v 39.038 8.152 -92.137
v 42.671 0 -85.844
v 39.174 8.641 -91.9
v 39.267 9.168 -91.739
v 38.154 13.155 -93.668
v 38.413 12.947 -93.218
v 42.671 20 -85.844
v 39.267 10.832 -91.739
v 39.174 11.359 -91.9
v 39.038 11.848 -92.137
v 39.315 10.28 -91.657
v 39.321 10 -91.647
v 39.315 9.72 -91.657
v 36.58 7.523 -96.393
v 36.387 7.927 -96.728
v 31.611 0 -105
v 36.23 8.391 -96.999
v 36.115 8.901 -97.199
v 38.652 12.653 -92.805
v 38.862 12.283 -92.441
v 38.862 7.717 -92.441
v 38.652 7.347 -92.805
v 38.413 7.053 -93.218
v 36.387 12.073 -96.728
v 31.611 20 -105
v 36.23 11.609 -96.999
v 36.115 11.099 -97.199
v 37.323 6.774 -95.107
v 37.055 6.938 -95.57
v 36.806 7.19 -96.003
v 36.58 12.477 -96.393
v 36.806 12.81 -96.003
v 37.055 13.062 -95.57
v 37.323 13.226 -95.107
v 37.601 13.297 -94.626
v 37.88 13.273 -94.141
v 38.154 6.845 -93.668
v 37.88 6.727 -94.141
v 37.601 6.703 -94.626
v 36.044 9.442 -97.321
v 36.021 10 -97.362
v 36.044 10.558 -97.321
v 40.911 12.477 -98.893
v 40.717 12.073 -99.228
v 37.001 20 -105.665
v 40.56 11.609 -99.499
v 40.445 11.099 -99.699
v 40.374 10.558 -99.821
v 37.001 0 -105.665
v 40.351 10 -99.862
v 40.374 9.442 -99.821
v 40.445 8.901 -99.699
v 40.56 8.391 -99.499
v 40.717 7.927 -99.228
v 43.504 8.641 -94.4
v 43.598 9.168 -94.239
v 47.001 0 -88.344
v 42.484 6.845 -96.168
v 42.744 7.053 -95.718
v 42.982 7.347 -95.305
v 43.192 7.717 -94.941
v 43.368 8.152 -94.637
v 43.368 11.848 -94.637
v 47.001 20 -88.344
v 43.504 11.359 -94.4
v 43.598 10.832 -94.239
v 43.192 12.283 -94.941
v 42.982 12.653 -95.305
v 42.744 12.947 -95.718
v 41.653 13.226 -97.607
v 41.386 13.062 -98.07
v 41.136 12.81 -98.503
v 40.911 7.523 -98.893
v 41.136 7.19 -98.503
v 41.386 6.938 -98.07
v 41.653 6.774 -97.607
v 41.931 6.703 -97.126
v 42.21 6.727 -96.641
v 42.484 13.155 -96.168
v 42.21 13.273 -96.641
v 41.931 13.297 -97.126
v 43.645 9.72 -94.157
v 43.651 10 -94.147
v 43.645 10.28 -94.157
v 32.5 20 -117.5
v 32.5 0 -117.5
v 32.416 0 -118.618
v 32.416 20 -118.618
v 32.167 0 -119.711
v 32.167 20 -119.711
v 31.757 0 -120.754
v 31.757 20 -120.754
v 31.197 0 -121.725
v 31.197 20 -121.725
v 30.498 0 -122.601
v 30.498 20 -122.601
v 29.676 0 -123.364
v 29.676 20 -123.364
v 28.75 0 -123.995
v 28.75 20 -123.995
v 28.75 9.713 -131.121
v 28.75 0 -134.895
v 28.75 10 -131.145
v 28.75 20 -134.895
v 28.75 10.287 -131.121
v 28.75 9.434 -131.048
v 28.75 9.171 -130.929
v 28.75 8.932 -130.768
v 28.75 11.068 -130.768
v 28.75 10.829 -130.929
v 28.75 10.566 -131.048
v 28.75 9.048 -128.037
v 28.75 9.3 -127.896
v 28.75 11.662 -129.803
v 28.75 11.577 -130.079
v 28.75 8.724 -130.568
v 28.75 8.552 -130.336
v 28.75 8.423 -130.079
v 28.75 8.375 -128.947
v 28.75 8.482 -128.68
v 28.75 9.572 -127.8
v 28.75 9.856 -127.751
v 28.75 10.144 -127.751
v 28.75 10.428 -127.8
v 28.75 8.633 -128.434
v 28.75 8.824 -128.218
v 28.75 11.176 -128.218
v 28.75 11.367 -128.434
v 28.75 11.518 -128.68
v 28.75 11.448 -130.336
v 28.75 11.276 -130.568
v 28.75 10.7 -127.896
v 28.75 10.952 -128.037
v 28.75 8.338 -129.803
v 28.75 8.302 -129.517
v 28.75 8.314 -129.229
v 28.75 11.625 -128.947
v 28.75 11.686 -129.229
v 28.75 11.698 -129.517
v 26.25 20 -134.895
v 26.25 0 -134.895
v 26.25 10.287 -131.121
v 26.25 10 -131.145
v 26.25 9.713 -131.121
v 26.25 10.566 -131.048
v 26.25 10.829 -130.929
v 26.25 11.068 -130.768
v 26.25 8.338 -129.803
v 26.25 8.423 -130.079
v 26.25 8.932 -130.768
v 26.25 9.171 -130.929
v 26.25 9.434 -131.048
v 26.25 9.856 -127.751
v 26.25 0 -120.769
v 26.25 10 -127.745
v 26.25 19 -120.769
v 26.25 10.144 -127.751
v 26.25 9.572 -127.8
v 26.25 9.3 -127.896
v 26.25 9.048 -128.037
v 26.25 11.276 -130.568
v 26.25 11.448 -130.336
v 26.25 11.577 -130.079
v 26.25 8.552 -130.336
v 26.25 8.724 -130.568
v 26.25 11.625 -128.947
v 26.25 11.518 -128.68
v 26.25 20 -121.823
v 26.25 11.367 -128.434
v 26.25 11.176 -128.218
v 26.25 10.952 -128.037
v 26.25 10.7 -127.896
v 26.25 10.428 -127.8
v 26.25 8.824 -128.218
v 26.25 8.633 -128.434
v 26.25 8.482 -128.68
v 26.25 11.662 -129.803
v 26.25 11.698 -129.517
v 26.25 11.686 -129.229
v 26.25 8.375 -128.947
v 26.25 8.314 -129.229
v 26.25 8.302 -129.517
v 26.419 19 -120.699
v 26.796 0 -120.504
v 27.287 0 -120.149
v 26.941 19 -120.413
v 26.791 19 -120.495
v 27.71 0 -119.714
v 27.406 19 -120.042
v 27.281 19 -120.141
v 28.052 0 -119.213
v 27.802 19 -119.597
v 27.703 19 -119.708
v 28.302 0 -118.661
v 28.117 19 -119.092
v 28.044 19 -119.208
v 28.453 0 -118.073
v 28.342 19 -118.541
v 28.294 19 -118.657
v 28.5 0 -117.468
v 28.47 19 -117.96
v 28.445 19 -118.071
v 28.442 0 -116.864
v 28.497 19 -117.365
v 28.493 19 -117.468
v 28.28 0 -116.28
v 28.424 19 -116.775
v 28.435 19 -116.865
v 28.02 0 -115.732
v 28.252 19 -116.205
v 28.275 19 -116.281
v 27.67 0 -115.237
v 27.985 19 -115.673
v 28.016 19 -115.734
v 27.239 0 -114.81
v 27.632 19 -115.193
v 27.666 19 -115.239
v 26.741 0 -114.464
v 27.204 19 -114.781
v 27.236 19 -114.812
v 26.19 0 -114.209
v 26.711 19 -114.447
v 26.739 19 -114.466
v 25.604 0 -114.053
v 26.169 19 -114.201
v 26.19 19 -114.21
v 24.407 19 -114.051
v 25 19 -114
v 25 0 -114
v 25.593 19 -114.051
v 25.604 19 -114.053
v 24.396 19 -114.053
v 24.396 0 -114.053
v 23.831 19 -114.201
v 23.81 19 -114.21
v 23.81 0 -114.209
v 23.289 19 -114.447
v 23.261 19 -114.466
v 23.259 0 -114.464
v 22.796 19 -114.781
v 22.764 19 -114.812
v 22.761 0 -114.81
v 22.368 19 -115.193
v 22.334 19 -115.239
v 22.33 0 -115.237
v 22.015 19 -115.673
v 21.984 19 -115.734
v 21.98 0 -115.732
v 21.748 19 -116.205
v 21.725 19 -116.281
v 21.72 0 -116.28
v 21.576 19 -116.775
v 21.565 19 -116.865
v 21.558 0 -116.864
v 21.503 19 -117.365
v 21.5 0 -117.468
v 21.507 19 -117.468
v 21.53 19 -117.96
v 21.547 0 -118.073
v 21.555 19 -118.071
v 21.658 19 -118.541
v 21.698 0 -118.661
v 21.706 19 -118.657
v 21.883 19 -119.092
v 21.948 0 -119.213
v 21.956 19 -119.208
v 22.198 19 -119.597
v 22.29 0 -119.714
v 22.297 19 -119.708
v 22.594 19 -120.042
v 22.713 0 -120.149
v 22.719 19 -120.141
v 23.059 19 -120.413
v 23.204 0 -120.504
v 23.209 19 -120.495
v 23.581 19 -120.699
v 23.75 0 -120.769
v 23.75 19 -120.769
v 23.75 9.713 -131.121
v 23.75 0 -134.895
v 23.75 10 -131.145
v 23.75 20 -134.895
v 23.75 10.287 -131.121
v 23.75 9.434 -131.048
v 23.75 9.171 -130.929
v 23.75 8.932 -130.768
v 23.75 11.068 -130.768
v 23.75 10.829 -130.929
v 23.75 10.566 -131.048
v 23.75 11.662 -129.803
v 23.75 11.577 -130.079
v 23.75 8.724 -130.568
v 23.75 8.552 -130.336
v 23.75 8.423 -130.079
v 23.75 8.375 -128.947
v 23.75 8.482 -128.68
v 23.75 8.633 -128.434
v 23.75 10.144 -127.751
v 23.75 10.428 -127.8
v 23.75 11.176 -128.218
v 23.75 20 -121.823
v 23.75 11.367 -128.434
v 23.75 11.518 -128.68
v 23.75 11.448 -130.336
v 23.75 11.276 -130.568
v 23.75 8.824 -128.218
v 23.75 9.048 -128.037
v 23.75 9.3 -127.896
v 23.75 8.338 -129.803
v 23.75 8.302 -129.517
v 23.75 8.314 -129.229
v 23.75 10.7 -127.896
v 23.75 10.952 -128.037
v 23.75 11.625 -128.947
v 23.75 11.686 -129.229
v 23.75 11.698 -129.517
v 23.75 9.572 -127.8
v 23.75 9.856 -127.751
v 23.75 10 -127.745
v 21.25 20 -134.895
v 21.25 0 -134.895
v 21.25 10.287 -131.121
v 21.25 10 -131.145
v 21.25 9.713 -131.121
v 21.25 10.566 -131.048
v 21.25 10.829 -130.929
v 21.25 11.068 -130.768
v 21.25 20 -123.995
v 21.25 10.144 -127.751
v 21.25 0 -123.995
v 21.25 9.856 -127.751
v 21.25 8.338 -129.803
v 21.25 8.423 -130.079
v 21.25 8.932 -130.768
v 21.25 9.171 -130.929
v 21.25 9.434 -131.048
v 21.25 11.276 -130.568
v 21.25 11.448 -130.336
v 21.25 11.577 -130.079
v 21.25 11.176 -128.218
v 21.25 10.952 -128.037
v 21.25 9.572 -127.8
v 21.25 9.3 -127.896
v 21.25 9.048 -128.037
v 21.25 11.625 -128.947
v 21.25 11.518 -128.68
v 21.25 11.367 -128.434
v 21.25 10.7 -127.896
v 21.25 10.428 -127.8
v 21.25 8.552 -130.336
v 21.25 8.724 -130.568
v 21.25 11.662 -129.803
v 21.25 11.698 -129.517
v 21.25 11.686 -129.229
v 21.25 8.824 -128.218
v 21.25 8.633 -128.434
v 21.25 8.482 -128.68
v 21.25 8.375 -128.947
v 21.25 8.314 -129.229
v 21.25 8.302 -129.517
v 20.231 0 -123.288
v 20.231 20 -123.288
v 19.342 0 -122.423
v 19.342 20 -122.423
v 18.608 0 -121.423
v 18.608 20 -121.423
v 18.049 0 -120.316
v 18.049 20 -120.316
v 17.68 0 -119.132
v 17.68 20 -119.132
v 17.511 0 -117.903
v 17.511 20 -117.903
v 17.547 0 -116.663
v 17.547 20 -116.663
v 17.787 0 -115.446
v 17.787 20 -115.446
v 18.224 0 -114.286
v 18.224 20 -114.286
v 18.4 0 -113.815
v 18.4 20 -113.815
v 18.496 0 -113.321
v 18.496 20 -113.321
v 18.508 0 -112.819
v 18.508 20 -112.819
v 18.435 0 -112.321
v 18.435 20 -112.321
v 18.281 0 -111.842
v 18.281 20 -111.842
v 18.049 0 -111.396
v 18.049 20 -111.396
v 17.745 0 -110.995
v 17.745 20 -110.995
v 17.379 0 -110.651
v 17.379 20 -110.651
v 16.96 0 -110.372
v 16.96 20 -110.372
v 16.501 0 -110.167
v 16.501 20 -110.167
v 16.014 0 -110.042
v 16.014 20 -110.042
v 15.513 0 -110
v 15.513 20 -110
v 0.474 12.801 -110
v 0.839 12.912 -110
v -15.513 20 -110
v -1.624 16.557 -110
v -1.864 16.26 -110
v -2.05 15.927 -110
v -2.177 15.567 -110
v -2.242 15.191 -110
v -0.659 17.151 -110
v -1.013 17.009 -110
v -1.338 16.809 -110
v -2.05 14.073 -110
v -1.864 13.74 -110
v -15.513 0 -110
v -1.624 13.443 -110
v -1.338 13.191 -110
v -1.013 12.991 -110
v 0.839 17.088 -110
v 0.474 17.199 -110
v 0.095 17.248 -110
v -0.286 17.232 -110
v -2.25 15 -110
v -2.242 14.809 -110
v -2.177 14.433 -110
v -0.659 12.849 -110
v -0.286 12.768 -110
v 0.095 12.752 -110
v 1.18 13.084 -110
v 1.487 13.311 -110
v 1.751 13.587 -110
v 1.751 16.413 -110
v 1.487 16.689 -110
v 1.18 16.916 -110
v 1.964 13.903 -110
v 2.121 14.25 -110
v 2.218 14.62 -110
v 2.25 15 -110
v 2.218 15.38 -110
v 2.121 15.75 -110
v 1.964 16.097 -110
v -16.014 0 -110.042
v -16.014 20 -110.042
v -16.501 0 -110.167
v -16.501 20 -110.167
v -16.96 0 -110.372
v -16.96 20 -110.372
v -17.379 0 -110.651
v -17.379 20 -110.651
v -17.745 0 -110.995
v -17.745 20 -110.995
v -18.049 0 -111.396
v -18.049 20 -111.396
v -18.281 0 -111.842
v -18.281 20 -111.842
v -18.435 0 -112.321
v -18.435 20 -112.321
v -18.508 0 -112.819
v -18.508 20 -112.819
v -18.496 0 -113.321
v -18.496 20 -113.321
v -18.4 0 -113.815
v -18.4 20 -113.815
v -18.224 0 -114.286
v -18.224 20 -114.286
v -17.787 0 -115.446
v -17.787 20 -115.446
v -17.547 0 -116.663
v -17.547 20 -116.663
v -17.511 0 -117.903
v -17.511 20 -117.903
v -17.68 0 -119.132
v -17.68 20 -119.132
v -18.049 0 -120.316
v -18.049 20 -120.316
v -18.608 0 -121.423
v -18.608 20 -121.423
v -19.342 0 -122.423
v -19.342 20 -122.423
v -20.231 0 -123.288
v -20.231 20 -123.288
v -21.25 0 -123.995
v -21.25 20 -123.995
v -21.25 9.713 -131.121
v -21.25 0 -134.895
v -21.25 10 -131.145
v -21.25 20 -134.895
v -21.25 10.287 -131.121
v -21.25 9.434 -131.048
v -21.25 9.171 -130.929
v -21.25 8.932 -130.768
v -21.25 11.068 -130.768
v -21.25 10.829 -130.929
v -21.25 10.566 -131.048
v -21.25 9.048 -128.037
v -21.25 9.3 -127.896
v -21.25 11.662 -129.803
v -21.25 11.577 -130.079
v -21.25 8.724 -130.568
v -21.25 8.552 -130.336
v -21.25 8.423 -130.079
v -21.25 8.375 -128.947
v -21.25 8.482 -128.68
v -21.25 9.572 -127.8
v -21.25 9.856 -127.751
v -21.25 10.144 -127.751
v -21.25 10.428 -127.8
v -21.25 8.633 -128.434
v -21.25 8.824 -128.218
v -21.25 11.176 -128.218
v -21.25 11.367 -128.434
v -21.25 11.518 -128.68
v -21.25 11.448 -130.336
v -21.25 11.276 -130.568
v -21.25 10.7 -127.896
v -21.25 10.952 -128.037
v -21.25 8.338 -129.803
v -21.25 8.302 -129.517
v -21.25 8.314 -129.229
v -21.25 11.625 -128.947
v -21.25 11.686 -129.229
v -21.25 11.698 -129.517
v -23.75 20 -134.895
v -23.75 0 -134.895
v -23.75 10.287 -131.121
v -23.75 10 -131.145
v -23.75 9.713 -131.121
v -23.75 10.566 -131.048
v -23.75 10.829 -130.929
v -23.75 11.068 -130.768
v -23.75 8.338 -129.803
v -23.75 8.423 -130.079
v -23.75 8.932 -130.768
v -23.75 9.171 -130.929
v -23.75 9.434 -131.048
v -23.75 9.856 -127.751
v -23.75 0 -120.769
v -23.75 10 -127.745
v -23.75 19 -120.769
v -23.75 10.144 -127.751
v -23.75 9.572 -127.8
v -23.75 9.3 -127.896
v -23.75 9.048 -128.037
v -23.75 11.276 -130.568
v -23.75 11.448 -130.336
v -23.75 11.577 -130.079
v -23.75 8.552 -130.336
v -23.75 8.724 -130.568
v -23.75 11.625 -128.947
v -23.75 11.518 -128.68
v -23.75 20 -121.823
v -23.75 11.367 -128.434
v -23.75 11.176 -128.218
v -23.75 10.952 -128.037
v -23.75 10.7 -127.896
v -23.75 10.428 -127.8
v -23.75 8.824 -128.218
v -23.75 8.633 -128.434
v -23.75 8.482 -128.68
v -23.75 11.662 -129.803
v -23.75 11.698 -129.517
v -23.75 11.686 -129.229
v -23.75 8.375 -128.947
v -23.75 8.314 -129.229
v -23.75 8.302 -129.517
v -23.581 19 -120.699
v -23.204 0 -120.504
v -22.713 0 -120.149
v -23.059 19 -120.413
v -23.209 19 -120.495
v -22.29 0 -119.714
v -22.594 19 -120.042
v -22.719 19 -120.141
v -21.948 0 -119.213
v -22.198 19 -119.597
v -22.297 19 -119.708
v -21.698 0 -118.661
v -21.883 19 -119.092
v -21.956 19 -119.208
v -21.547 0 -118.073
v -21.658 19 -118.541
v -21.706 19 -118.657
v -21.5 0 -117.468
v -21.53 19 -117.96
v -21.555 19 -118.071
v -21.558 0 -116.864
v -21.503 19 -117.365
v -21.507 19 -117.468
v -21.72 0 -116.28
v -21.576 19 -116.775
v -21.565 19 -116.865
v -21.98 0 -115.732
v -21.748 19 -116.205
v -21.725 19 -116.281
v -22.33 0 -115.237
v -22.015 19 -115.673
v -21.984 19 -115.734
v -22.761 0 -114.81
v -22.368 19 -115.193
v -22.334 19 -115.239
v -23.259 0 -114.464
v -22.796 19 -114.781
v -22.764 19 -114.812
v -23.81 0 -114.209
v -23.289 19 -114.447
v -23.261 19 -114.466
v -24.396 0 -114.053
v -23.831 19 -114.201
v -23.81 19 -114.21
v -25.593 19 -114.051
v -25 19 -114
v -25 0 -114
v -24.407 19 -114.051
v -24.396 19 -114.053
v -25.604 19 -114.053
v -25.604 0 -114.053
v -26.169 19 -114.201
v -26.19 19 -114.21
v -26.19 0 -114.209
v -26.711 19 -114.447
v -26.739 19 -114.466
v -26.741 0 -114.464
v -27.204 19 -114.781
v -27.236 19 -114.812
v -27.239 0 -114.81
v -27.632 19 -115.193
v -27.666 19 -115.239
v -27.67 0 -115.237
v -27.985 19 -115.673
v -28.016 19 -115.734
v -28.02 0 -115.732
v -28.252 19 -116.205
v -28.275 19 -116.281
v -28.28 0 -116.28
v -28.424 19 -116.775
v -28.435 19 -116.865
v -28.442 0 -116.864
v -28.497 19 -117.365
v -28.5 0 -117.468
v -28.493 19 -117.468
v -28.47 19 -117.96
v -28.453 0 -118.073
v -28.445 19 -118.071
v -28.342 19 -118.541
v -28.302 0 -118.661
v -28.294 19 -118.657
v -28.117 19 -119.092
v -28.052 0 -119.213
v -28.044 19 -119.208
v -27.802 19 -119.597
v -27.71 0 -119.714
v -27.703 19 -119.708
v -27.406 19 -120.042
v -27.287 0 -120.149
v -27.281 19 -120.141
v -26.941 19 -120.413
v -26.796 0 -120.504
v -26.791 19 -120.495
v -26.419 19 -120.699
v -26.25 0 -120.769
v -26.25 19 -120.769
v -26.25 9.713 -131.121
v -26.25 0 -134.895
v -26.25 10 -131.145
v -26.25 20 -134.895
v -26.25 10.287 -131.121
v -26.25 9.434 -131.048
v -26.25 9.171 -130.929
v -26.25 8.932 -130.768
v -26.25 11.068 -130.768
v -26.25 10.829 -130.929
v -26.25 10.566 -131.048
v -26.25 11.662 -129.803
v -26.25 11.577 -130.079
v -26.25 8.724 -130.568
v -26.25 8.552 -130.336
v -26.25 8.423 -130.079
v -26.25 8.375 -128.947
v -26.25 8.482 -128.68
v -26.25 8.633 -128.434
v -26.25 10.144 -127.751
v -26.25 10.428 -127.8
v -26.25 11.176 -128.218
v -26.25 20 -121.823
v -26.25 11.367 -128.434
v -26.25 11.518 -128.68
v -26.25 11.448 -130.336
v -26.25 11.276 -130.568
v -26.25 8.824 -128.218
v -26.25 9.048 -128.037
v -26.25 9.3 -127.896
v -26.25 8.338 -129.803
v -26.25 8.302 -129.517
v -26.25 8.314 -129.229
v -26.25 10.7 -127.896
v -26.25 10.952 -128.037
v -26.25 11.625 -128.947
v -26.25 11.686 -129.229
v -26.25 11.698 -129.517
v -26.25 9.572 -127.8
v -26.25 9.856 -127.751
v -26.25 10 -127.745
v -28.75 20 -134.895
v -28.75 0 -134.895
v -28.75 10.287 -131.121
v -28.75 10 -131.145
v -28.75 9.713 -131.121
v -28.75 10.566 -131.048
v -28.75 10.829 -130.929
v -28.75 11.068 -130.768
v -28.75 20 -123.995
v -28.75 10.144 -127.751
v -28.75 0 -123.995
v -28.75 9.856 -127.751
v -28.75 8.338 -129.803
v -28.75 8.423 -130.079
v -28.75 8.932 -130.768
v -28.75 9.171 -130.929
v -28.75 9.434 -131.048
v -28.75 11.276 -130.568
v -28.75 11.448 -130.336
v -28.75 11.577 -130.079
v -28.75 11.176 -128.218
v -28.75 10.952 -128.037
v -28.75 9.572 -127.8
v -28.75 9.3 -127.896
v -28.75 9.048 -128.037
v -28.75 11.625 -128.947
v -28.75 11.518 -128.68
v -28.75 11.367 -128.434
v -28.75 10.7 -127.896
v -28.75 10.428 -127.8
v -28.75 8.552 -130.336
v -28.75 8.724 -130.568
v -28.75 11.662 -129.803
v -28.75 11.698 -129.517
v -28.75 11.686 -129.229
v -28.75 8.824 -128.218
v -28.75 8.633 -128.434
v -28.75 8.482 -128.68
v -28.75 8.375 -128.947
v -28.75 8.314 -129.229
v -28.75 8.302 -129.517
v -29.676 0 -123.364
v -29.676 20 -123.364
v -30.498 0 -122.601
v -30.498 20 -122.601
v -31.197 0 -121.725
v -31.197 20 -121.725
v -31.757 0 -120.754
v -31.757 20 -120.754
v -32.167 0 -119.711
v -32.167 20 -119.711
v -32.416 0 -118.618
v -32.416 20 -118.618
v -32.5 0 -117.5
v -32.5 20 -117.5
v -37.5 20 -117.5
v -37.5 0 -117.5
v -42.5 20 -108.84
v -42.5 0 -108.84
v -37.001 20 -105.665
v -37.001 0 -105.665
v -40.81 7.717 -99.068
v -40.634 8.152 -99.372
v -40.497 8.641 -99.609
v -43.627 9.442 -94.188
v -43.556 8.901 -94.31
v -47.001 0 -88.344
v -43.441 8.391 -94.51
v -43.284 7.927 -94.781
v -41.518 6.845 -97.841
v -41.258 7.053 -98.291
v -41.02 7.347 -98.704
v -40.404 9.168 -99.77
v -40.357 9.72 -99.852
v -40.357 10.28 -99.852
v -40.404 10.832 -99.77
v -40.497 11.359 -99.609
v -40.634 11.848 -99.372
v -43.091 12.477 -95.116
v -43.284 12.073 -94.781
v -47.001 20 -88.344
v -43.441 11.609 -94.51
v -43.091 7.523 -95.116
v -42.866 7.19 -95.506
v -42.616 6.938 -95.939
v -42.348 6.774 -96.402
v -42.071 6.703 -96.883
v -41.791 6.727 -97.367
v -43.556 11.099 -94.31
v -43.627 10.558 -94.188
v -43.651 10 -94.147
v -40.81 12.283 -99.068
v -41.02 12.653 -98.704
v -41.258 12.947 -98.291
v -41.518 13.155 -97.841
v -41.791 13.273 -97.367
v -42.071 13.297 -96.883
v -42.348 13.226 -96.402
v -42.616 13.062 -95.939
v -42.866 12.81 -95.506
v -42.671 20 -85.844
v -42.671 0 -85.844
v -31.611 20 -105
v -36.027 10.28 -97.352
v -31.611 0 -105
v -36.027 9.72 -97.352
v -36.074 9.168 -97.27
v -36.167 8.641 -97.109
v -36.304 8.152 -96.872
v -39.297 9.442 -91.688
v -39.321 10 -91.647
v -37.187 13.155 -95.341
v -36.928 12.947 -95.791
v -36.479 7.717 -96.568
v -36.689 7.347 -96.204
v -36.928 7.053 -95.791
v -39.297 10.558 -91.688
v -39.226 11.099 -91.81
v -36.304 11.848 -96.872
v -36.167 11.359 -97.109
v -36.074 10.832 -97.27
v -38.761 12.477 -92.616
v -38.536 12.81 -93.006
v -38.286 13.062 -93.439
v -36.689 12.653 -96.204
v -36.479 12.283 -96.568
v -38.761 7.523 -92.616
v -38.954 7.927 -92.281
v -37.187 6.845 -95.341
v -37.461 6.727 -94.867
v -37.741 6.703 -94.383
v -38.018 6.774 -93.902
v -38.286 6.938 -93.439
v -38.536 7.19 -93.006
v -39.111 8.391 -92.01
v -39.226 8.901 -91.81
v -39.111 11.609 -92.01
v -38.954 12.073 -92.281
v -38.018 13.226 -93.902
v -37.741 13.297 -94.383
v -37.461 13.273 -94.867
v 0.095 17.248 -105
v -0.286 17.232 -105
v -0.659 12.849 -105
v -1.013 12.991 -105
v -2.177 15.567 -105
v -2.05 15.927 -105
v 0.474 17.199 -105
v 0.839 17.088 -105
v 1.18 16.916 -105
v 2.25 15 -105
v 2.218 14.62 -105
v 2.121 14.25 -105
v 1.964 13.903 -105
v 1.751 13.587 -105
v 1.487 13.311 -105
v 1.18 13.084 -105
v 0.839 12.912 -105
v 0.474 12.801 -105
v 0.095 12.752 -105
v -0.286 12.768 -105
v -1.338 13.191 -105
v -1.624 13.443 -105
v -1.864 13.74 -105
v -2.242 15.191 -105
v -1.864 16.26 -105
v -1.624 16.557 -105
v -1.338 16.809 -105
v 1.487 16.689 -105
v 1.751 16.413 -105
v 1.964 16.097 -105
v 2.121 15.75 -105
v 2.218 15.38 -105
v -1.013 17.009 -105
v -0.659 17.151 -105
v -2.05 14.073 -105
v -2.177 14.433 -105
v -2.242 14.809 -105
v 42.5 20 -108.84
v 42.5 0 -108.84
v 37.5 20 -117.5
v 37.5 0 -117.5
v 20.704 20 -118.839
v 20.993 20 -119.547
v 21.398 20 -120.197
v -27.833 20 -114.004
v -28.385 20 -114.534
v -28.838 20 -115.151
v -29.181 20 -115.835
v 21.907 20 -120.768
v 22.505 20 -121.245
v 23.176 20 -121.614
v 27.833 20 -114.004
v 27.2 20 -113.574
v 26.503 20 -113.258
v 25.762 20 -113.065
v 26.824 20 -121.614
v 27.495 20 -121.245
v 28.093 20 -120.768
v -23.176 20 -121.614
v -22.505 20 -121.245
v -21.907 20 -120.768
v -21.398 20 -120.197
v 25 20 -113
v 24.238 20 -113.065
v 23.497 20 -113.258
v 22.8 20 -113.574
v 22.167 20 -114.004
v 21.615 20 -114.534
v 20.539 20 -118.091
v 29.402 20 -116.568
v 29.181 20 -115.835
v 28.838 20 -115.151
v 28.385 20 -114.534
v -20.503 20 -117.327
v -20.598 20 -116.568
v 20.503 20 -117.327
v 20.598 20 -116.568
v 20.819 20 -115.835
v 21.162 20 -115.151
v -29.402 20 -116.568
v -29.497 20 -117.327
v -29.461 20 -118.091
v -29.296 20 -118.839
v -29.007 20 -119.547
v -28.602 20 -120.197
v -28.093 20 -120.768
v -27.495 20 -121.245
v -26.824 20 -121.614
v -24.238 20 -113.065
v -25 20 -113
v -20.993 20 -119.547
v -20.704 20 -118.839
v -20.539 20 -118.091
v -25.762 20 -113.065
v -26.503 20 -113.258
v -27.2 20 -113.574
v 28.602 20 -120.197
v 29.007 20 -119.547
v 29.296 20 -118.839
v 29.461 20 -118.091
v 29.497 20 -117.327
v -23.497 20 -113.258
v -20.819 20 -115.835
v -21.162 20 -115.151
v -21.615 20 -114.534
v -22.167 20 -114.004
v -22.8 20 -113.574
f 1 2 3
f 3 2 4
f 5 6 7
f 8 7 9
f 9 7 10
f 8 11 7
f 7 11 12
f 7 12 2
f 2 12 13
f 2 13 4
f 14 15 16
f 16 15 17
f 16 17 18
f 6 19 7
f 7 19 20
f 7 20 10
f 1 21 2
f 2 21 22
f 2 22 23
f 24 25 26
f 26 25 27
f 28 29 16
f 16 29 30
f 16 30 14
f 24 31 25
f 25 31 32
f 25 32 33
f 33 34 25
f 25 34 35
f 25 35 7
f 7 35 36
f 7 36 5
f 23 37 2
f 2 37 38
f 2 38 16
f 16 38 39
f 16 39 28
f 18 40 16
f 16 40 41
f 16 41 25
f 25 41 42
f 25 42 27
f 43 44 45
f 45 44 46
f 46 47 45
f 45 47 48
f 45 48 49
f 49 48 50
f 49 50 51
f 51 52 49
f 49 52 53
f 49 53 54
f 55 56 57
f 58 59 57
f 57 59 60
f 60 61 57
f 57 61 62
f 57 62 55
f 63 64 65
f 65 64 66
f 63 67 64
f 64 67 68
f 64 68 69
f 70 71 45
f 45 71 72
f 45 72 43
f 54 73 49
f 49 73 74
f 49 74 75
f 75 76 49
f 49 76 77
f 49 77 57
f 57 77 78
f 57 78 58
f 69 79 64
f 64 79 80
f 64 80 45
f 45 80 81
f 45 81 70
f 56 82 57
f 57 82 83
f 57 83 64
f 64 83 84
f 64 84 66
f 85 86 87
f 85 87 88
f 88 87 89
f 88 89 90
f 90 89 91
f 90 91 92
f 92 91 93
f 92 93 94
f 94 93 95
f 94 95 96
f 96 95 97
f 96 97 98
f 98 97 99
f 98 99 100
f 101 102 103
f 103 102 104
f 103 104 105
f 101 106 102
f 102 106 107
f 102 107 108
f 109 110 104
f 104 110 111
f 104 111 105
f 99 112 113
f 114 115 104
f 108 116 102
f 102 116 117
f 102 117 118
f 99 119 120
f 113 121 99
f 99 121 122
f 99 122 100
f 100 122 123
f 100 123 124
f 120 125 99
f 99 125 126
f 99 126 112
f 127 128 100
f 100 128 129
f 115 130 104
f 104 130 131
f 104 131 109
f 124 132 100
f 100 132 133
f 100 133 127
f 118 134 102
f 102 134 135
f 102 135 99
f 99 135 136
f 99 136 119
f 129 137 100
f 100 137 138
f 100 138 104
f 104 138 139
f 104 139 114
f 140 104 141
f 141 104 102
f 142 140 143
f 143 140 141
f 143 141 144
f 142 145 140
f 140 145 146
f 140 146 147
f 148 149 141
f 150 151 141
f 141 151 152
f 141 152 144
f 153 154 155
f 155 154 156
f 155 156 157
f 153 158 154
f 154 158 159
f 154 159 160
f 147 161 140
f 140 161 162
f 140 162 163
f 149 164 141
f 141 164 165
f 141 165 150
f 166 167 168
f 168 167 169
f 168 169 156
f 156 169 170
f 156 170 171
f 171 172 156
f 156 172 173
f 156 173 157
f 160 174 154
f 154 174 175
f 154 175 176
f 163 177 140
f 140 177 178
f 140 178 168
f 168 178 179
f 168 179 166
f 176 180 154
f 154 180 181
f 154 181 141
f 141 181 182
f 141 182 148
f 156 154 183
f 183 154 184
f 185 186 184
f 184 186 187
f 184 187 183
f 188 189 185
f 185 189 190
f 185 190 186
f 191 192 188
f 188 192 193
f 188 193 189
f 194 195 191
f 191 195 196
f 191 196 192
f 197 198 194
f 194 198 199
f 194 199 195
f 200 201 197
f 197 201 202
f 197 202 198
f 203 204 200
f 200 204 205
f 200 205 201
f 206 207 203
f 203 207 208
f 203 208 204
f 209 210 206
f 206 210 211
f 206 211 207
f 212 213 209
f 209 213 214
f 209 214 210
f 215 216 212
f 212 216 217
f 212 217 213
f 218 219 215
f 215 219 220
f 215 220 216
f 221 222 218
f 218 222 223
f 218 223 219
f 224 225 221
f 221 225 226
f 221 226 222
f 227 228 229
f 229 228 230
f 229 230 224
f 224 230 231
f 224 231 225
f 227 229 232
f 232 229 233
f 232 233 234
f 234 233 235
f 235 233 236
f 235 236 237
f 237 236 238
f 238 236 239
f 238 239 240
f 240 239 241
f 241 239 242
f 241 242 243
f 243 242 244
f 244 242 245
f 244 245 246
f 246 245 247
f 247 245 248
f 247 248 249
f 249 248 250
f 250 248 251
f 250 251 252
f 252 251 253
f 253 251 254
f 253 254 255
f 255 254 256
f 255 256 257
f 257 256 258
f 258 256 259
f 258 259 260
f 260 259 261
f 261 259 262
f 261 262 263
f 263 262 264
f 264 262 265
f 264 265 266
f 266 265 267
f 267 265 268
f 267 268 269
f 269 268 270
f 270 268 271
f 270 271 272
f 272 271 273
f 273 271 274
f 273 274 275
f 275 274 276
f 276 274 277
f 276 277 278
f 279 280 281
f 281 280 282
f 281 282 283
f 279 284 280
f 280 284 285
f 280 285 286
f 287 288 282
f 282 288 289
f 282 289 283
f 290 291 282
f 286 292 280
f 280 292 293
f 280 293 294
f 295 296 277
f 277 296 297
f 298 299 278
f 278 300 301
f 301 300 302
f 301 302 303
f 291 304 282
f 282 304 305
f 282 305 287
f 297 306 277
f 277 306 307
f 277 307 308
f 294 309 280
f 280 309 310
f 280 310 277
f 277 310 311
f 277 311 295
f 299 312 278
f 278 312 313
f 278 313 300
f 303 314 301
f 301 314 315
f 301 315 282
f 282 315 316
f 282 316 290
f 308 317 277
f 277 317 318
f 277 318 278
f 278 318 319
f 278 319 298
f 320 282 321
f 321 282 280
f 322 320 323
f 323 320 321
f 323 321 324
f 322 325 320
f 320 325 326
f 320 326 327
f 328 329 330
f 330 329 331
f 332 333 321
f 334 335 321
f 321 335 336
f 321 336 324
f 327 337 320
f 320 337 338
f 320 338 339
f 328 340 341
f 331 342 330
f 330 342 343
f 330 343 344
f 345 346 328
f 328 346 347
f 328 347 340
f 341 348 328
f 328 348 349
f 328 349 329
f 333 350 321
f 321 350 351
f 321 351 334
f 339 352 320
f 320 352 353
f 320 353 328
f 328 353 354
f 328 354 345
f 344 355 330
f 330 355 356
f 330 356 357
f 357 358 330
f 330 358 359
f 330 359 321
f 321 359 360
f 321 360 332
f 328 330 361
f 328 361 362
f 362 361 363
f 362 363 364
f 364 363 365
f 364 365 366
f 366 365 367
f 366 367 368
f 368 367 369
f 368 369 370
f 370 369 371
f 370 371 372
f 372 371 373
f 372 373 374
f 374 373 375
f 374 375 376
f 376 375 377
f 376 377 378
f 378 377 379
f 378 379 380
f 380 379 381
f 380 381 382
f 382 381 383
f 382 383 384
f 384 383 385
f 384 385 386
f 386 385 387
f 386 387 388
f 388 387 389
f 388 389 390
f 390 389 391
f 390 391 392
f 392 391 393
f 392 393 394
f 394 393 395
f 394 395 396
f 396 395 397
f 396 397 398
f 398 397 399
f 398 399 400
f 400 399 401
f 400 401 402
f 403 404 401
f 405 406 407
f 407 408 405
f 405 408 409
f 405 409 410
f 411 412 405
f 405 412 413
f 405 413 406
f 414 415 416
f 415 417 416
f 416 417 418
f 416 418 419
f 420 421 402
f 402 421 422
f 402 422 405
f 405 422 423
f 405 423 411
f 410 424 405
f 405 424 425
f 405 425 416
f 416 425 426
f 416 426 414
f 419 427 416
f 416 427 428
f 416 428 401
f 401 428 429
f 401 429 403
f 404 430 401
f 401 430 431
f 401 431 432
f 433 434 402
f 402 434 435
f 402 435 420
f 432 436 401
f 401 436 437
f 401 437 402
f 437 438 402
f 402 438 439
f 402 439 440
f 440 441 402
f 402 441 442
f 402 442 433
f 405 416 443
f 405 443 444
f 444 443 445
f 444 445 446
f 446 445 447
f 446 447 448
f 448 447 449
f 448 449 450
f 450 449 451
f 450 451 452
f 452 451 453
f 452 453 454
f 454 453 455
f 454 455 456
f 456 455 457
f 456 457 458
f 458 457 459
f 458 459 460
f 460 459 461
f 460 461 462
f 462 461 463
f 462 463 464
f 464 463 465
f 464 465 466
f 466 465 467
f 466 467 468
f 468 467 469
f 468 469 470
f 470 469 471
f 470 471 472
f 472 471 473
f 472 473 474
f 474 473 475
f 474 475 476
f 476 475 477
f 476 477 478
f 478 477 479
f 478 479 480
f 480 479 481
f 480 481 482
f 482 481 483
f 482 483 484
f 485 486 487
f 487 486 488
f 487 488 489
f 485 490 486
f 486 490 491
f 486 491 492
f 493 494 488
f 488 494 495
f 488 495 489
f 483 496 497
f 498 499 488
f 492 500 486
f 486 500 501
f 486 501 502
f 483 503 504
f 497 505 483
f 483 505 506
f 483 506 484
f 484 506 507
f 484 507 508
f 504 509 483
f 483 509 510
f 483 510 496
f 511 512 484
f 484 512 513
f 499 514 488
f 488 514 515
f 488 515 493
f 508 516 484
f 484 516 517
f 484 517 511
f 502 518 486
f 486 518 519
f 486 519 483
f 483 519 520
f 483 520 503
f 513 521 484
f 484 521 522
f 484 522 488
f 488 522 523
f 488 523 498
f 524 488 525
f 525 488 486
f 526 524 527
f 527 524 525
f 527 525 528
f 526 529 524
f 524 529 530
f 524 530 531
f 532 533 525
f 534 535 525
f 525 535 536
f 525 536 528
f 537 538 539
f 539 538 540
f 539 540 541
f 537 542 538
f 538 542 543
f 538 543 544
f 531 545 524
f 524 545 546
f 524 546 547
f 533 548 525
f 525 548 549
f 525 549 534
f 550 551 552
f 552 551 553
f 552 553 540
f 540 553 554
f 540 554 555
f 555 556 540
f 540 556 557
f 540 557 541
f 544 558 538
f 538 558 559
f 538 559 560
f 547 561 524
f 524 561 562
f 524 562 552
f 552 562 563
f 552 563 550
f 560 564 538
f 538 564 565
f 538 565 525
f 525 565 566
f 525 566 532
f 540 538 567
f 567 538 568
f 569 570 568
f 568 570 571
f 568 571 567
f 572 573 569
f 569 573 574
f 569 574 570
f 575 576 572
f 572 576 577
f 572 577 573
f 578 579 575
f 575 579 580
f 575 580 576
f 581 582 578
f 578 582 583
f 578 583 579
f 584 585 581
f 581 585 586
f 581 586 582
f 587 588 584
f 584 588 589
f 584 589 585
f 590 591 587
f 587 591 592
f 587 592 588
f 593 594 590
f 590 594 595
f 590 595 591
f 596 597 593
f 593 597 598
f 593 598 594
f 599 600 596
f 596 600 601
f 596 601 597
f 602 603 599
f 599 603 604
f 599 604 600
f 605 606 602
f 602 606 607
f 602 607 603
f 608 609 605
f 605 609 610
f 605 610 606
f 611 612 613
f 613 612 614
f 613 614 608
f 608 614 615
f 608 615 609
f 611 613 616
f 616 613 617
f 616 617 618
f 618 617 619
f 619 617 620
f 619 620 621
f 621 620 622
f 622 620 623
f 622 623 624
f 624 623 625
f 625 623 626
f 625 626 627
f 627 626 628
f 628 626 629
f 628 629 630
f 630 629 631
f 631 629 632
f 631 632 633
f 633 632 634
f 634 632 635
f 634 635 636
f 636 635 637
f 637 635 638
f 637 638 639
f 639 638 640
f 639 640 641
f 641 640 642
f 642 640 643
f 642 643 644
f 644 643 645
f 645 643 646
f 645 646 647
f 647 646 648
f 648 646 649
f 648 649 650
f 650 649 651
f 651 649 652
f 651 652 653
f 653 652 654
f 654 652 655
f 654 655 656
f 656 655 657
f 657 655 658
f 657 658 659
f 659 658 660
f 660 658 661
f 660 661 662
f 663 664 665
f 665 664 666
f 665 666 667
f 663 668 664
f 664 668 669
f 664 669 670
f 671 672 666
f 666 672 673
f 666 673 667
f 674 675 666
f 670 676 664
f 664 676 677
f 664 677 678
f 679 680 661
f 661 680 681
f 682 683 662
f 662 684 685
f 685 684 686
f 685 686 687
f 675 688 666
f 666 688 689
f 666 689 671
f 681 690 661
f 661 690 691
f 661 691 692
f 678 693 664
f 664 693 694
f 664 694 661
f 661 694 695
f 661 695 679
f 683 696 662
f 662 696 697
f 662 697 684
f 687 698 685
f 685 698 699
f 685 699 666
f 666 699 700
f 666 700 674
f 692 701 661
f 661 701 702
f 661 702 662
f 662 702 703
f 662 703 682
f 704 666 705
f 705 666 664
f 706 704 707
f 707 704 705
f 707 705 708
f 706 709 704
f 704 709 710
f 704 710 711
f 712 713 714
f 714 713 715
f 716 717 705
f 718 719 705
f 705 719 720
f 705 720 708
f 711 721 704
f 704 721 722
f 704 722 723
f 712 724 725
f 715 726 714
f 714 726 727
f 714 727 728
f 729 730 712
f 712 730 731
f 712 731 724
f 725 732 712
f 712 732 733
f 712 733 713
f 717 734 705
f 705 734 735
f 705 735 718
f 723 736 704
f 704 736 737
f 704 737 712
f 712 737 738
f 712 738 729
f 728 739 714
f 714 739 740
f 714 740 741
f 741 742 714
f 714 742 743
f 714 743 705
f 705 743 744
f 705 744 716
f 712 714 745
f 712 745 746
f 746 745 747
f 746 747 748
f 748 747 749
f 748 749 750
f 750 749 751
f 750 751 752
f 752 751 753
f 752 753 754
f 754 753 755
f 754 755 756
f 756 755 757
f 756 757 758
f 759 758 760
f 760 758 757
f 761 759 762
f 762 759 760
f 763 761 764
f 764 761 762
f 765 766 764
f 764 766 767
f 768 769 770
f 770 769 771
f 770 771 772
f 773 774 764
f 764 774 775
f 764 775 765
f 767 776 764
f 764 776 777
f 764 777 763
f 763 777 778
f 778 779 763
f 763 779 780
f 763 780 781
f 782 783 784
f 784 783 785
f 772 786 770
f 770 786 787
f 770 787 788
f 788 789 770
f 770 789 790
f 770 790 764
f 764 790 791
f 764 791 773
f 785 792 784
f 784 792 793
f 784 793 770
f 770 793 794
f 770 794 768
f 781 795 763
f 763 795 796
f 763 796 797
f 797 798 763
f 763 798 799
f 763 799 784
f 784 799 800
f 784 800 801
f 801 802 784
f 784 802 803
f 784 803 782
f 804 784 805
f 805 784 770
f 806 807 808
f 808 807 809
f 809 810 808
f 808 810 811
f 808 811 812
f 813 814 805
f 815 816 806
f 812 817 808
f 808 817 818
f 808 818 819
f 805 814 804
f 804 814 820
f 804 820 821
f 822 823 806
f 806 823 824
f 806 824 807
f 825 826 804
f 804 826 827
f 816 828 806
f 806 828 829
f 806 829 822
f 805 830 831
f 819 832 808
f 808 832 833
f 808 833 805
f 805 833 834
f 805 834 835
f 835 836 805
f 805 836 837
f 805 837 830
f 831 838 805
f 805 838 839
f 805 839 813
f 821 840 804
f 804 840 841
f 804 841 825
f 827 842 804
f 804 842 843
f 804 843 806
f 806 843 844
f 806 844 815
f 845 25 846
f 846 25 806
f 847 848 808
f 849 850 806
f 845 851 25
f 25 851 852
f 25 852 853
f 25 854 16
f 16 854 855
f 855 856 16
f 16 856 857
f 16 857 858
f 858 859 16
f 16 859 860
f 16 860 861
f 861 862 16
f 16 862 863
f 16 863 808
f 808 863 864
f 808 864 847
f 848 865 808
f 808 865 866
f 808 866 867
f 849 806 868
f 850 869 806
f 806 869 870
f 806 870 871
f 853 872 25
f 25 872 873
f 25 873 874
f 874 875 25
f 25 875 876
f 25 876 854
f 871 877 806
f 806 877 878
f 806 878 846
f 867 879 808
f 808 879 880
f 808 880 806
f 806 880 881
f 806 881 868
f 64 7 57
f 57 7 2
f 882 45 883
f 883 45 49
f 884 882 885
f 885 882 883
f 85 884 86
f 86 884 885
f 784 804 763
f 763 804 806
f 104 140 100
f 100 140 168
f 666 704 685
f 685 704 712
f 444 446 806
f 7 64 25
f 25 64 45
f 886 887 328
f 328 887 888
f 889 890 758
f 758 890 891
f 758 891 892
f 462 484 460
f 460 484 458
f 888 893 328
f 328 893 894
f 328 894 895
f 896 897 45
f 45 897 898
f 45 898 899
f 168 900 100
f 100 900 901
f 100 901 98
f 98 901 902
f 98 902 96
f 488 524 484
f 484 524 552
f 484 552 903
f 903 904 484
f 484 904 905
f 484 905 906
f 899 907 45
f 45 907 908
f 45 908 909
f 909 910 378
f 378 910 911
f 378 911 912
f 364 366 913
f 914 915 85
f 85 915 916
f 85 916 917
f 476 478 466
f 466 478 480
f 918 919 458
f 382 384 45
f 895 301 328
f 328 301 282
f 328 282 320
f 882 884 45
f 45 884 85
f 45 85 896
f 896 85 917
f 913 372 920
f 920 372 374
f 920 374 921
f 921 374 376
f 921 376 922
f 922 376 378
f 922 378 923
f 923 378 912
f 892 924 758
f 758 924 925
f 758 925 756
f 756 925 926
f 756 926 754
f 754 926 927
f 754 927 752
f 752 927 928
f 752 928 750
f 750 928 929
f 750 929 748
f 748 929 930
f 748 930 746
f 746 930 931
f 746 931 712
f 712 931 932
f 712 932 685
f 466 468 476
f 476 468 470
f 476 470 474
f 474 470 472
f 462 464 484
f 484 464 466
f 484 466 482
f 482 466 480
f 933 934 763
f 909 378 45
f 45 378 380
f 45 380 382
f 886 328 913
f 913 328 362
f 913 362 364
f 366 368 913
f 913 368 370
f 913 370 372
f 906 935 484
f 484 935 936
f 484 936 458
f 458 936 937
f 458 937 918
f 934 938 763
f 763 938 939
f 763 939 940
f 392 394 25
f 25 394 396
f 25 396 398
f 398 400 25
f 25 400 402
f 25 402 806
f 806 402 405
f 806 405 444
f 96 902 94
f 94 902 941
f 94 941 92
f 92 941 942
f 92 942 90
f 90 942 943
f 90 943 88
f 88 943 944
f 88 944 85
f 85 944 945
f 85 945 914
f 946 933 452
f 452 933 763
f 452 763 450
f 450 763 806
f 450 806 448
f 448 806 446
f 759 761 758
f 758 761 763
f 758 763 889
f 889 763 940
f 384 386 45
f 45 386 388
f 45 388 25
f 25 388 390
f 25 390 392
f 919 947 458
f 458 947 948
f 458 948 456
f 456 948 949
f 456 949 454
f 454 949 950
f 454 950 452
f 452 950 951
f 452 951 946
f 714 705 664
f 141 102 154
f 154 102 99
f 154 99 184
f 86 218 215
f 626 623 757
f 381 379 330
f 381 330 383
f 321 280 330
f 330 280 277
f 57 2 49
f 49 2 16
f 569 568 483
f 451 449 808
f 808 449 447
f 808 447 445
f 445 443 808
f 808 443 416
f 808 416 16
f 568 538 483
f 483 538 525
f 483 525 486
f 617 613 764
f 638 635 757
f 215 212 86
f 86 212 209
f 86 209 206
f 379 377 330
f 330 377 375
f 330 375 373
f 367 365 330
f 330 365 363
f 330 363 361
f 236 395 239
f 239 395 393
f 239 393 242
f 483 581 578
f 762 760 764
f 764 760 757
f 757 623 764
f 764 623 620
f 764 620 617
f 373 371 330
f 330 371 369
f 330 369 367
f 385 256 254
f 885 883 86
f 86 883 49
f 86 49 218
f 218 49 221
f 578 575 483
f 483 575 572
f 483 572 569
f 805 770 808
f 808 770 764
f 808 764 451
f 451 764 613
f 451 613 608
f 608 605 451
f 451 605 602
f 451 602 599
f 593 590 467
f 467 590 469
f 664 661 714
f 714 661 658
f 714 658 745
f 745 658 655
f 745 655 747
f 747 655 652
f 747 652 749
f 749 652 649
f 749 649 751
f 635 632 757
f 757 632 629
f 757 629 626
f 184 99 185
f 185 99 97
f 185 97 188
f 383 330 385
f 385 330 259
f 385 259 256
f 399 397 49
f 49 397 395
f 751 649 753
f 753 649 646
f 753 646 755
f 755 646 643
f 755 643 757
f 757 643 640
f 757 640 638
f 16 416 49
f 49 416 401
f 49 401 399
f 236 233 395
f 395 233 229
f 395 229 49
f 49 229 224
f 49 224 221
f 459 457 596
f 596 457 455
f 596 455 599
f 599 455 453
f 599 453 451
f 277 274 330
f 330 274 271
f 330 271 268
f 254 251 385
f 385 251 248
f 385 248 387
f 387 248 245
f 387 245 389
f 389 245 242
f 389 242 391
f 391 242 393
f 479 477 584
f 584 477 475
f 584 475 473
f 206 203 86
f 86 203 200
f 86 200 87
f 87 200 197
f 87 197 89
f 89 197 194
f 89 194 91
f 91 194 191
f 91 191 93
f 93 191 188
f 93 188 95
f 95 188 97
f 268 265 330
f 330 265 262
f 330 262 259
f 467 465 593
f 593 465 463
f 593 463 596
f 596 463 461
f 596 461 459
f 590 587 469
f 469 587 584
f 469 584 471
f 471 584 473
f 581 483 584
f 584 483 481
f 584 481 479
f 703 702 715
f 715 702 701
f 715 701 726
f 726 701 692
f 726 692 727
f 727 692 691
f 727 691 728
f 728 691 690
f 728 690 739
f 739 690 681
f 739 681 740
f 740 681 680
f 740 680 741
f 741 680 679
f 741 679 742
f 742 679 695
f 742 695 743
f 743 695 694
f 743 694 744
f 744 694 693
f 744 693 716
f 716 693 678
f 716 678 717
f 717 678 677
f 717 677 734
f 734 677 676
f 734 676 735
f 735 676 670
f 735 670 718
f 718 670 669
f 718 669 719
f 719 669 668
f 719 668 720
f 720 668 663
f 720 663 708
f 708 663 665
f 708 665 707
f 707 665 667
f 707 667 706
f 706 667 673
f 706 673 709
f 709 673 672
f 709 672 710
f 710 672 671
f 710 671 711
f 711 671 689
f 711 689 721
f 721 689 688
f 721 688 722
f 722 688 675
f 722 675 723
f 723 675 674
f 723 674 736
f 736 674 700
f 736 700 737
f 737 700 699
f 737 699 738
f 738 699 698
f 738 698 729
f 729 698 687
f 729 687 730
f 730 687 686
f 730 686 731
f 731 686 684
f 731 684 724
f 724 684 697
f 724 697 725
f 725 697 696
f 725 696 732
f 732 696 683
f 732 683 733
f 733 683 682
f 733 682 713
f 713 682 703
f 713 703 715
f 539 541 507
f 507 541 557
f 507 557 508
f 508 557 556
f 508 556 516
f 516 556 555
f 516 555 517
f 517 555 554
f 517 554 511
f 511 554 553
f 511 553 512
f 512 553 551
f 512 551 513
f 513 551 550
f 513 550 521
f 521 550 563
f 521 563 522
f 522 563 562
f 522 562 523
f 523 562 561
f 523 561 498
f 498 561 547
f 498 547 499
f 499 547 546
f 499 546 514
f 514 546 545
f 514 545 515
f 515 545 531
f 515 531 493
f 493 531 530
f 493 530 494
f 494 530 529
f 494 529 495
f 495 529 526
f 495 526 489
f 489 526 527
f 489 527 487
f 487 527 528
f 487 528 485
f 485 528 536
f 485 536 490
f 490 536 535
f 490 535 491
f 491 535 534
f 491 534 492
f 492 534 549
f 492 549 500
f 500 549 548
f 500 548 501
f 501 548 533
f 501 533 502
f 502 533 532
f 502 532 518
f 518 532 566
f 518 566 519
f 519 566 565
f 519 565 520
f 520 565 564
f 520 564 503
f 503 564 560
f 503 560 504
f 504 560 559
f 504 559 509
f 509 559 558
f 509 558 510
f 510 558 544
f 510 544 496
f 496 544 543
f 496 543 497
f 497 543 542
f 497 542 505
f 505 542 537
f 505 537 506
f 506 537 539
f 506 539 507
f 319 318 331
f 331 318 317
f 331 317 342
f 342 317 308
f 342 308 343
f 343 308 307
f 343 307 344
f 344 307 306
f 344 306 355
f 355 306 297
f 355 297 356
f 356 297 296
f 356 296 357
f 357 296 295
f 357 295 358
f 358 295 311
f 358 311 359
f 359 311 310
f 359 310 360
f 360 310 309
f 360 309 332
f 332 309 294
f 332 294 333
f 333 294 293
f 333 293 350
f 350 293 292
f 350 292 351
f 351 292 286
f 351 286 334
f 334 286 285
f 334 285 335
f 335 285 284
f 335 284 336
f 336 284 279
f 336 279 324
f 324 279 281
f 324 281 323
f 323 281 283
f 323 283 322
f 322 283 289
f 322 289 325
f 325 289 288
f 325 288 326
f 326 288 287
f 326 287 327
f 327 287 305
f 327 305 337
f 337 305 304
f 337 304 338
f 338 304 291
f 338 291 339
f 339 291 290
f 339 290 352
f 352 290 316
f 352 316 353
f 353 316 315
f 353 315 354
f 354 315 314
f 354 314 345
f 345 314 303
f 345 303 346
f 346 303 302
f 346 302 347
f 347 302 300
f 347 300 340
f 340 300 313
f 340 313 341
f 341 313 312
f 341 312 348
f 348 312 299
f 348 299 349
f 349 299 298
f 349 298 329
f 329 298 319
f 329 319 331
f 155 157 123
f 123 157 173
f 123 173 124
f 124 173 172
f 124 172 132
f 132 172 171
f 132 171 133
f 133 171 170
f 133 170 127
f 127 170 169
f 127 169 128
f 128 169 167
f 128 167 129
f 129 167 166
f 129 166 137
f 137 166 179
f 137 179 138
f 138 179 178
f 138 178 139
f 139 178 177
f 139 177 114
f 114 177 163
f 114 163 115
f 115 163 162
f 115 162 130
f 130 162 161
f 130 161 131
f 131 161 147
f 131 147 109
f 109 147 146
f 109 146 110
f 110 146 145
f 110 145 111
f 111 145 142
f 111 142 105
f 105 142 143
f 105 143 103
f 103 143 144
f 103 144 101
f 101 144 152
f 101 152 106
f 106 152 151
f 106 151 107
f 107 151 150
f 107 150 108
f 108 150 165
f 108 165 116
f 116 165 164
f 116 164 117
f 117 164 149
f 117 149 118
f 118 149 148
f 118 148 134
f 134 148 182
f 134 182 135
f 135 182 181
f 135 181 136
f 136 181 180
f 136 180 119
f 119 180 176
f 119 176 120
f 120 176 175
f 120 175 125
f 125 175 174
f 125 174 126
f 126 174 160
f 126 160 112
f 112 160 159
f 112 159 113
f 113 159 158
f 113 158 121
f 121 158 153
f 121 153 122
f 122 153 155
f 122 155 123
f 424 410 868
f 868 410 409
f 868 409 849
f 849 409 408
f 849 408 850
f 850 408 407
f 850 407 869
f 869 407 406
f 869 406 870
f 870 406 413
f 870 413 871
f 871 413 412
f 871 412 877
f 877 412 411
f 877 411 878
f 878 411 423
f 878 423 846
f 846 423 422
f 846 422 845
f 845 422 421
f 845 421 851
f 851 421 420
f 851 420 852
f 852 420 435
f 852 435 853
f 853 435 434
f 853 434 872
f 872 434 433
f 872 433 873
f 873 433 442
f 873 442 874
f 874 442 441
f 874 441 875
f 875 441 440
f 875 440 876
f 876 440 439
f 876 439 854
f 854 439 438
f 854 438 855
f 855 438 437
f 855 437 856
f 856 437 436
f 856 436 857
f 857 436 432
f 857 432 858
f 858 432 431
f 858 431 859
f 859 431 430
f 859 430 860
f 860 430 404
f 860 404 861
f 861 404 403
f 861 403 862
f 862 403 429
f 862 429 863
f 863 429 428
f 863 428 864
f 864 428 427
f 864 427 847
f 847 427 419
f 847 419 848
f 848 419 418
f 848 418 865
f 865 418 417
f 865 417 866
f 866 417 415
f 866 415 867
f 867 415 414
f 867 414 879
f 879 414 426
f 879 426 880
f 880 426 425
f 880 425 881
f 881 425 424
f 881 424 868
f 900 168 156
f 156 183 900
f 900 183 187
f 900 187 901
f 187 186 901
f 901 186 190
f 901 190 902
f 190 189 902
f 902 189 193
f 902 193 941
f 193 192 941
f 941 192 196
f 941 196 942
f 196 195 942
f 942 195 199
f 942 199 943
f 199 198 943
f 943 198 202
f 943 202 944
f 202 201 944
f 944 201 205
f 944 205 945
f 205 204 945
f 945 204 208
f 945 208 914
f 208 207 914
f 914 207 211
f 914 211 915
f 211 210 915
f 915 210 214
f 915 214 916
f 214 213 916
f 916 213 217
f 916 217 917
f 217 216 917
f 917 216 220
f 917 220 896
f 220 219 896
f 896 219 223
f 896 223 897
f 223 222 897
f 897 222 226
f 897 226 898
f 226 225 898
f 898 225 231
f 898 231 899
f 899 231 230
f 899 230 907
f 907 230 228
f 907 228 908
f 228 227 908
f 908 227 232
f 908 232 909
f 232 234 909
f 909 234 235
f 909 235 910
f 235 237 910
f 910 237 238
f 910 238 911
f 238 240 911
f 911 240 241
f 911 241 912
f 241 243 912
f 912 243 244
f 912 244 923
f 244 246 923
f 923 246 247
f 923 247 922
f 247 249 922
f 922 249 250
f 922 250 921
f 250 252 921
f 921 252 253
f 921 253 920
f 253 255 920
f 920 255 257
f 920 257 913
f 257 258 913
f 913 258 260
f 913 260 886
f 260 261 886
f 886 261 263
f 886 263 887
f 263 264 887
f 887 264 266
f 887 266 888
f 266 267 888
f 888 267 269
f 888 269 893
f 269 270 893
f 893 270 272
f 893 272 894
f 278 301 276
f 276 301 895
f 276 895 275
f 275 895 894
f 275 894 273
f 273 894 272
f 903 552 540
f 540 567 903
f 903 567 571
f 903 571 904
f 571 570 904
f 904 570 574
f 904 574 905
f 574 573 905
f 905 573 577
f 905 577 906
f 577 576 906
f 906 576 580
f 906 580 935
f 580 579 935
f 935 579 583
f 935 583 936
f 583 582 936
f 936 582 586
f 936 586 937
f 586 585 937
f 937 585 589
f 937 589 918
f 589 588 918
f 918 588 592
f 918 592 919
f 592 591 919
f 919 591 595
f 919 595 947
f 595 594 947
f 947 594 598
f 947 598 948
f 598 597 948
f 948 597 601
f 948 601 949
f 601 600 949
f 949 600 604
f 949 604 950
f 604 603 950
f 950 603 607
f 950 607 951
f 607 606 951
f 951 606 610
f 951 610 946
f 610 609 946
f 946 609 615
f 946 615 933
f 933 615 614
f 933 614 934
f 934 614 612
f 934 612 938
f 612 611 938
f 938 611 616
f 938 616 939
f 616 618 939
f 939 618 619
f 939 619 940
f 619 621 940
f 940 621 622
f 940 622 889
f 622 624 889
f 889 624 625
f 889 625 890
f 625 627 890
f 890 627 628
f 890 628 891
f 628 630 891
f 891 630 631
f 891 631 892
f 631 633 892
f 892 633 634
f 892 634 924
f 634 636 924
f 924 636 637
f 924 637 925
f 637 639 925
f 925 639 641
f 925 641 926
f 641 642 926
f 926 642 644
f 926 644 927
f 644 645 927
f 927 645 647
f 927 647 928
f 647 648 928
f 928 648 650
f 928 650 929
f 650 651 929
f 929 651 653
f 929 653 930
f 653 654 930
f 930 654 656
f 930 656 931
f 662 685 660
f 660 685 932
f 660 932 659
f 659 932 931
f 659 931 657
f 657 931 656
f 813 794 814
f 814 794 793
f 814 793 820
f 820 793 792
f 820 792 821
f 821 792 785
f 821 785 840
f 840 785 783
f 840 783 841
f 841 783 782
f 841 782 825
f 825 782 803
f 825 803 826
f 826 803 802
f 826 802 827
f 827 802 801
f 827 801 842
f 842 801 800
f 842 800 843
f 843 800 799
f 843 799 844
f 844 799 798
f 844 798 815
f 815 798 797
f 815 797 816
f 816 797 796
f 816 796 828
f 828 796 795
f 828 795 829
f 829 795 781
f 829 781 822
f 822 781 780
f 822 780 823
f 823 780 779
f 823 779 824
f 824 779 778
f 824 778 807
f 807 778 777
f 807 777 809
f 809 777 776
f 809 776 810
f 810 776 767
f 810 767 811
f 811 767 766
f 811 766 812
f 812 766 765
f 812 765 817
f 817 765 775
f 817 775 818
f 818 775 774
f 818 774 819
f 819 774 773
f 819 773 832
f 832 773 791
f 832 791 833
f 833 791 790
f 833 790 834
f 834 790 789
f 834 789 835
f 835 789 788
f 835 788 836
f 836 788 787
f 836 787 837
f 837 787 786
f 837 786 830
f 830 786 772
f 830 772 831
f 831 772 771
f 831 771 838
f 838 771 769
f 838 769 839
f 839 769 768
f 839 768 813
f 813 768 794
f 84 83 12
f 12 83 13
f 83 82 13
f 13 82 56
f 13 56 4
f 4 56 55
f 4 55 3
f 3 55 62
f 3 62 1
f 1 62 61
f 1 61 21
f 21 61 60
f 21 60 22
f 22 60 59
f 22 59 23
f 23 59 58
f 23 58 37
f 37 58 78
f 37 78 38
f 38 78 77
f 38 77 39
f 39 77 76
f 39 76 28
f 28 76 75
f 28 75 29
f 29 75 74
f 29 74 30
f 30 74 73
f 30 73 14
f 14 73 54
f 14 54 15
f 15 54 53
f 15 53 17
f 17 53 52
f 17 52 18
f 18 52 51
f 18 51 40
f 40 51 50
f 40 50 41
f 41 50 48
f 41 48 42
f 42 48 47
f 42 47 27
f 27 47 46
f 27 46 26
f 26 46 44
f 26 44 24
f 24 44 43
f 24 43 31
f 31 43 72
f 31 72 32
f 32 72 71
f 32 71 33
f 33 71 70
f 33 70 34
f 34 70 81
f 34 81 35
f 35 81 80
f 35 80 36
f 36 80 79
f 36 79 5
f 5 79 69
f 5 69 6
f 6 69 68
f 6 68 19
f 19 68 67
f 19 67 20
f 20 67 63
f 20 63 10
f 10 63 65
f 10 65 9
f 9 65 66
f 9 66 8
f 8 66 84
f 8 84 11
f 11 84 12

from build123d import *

# Parameters (mm, degrees)
BOSS_EXTRUDE1_DEPTH = 20
SKETCH2_R           = 1.7
CUT_EXTRUDE1_DEPTH  = 28.75
CUT_EXTRUDE2_REACH  = 61.184
SKETCH4_R           = 2.25
CHAMFER1_SIZE       = 1
CUT_EXTRUDE3_REACH  = 155.199
SKETCH5_R           = 3.3


with BuildPart() as part:
    # Sketch1 → Boss-Extrude1 (new body)
    with BuildSketch(Plane(origin=(0, 0, 0), x_dir=(1, 0, 0), z_dir=(0, 1, 0))):
        with BuildLine():
            Line((23.75, 120.769174208), (23.75, 134.895099729))
            Line((23.75, 134.895099729), (21.25, 134.895099729))
            Line((21.25, 134.895099729), (21.25, 123.995190528))
            ThreePointArc((21.25, 123.995190528), (17.839743095, 119.73175291), (18.223690728, 114.285714286))
            ThreePointArc((18.223690728, 114.285714286), (18.048629784, 111.396432549), (15.513167019, 110))
            Line((15.513167019, 110), (-15.513167019, 110))
            ThreePointArc((-15.513167019, 110), (-18.048629784, 111.396432549), (-18.223690728, 114.285714286))
            ThreePointArc((-18.223690728, 114.285714286), (-17.839743095, 119.73175291), (-21.25, 123.995190528))
            Line((-21.25, 123.995190528), (-21.25, 134.895099729))
            Line((-21.25, 134.895099729), (-23.75, 134.895099729))
            Line((-23.75, 134.895099729), (-23.75, 120.769174208))
            ThreePointArc((-23.75, 120.769174208), (-25, 114), (-26.25, 120.769174208))
            Line((-26.25, 120.769174208), (-26.25, 134.895099729))
            Line((-26.25, 134.895099729), (-28.75, 134.895099729))
            Line((-28.75, 134.895099729), (-28.75, 123.995190528))
            ThreePointArc((-28.75, 123.995190528), (-31.495190528, 121.25), (-32.5, 117.5))
            Line((-32.5, 117.5), (-37.5, 117.5))
            Line((-37.5, 117.5), (-42.5, 108.839745962))
            Line((-42.5, 108.839745962), (-37.000738686, 105.664745962))
            Line((-37.000738686, 105.664745962), (-47.000738686, 88.344237886))
            Line((-47.000738686, 88.344237886), (-42.670611667, 85.844237886))
            Line((-42.670611667, 85.844237886), (-31.611027254, 105))
            Line((-31.611027254, 105), (31.611027254, 105))
            Line((31.611027254, 105), (42.670611667, 85.844237886))
            Line((42.670611667, 85.844237886), (47.000738686, 88.344237886))
            Line((47.000738686, 88.344237886), (37.000738686, 105.664745962))
            Line((37.000738686, 105.664745962), (42.5, 108.839745962))
            Line((42.5, 108.839745962), (37.5, 117.5))
            Line((37.5, 117.5), (32.5, 117.5))
            ThreePointArc((32.5, 117.5), (31.495190528, 121.25), (28.75, 123.995190528))
            Line((28.75, 123.995190528), (28.75, 134.895099729))
            Line((28.75, 134.895099729), (26.25, 134.895099729))
            Line((26.25, 134.895099729), (26.25, 120.769174208))
            ThreePointArc((26.25, 120.769174208), (25, 114), (23.75, 120.769174208))
        make_face()
    extrude(amount=BOSS_EXTRUDE1_DEPTH)

    # Sketch2 → Cut-Extrude1 (cut, symmetric)
    with BuildSketch(Plane(origin=(0, 0, 0), x_dir=(0, 0, -1), z_dir=(1, 0, 0))):
        with Locations((129.445145129, 10)):
            Circle(SKETCH2_R)
    extrude(amount=CUT_EXTRUDE1_DEPTH, both=True, mode=Mode.SUBTRACT)

    # Sketch4 → Cut-Extrude2 (cut, up to next)
    with BuildSketch(Plane.XY.offset(-105), mode=Mode.PRIVATE) as cut_extrude2_sk1:
        with Locations((0, 15)):
            Circle(SKETCH4_R)
    cut_extrude2_tool1 = extrude(cut_extrude2_sk1.sketch, amount=-CUT_EXTRUDE2_REACH, mode=Mode.PRIVATE) & part.part
    add(cut_extrude2_tool1.solids().sort_by_distance((0, 15, -105))[0], mode=Mode.SUBTRACT)

    # Chamfer1
    chamfer1_edges = [part.edges().sort_by_distance(p)[0] for p in [
        (25, 20, -114),
        (-25, 20, -114),
    ]]
    chamfer(chamfer1_edges, length=CHAMFER1_SIZE)

    # Sketch5 → Cut-Extrude3 (cut, up to next)
    with BuildSketch(Plane(origin=(-73.504731158, 0, -42.437976321), x_dir=(-0.49999999999998673, 0, 0.8660254037844464), z_dir=(-0.8660254037844464, 0, -0.49999999999998673)), mode=Mode.PRIVATE) as cut_extrude3_sk1:
        with Locations((-63.007984945, 10)):
            Circle(SKETCH5_R)
    cut_extrude3_tool1 = extrude(cut_extrude3_sk1.sketch, amount=-CUT_EXTRUDE3_REACH, mode=Mode.PRIVATE) & part.part
    cut_extrude3 = cut_extrude3_tool1.solids().sort_by_distance((-42.000739, 10, -97.004492))[0]
    add(cut_extrude3, mode=Mode.SUBTRACT)

    # Mirror1: Cut-Extrude3 across plane
    add(cut_extrude3.mirror(Plane(origin=(0, 0, 0), x_dir=(0, 0, 1), z_dir=(1, 0, 0))), mode=Mode.SUBTRACT)


solid = part.part
